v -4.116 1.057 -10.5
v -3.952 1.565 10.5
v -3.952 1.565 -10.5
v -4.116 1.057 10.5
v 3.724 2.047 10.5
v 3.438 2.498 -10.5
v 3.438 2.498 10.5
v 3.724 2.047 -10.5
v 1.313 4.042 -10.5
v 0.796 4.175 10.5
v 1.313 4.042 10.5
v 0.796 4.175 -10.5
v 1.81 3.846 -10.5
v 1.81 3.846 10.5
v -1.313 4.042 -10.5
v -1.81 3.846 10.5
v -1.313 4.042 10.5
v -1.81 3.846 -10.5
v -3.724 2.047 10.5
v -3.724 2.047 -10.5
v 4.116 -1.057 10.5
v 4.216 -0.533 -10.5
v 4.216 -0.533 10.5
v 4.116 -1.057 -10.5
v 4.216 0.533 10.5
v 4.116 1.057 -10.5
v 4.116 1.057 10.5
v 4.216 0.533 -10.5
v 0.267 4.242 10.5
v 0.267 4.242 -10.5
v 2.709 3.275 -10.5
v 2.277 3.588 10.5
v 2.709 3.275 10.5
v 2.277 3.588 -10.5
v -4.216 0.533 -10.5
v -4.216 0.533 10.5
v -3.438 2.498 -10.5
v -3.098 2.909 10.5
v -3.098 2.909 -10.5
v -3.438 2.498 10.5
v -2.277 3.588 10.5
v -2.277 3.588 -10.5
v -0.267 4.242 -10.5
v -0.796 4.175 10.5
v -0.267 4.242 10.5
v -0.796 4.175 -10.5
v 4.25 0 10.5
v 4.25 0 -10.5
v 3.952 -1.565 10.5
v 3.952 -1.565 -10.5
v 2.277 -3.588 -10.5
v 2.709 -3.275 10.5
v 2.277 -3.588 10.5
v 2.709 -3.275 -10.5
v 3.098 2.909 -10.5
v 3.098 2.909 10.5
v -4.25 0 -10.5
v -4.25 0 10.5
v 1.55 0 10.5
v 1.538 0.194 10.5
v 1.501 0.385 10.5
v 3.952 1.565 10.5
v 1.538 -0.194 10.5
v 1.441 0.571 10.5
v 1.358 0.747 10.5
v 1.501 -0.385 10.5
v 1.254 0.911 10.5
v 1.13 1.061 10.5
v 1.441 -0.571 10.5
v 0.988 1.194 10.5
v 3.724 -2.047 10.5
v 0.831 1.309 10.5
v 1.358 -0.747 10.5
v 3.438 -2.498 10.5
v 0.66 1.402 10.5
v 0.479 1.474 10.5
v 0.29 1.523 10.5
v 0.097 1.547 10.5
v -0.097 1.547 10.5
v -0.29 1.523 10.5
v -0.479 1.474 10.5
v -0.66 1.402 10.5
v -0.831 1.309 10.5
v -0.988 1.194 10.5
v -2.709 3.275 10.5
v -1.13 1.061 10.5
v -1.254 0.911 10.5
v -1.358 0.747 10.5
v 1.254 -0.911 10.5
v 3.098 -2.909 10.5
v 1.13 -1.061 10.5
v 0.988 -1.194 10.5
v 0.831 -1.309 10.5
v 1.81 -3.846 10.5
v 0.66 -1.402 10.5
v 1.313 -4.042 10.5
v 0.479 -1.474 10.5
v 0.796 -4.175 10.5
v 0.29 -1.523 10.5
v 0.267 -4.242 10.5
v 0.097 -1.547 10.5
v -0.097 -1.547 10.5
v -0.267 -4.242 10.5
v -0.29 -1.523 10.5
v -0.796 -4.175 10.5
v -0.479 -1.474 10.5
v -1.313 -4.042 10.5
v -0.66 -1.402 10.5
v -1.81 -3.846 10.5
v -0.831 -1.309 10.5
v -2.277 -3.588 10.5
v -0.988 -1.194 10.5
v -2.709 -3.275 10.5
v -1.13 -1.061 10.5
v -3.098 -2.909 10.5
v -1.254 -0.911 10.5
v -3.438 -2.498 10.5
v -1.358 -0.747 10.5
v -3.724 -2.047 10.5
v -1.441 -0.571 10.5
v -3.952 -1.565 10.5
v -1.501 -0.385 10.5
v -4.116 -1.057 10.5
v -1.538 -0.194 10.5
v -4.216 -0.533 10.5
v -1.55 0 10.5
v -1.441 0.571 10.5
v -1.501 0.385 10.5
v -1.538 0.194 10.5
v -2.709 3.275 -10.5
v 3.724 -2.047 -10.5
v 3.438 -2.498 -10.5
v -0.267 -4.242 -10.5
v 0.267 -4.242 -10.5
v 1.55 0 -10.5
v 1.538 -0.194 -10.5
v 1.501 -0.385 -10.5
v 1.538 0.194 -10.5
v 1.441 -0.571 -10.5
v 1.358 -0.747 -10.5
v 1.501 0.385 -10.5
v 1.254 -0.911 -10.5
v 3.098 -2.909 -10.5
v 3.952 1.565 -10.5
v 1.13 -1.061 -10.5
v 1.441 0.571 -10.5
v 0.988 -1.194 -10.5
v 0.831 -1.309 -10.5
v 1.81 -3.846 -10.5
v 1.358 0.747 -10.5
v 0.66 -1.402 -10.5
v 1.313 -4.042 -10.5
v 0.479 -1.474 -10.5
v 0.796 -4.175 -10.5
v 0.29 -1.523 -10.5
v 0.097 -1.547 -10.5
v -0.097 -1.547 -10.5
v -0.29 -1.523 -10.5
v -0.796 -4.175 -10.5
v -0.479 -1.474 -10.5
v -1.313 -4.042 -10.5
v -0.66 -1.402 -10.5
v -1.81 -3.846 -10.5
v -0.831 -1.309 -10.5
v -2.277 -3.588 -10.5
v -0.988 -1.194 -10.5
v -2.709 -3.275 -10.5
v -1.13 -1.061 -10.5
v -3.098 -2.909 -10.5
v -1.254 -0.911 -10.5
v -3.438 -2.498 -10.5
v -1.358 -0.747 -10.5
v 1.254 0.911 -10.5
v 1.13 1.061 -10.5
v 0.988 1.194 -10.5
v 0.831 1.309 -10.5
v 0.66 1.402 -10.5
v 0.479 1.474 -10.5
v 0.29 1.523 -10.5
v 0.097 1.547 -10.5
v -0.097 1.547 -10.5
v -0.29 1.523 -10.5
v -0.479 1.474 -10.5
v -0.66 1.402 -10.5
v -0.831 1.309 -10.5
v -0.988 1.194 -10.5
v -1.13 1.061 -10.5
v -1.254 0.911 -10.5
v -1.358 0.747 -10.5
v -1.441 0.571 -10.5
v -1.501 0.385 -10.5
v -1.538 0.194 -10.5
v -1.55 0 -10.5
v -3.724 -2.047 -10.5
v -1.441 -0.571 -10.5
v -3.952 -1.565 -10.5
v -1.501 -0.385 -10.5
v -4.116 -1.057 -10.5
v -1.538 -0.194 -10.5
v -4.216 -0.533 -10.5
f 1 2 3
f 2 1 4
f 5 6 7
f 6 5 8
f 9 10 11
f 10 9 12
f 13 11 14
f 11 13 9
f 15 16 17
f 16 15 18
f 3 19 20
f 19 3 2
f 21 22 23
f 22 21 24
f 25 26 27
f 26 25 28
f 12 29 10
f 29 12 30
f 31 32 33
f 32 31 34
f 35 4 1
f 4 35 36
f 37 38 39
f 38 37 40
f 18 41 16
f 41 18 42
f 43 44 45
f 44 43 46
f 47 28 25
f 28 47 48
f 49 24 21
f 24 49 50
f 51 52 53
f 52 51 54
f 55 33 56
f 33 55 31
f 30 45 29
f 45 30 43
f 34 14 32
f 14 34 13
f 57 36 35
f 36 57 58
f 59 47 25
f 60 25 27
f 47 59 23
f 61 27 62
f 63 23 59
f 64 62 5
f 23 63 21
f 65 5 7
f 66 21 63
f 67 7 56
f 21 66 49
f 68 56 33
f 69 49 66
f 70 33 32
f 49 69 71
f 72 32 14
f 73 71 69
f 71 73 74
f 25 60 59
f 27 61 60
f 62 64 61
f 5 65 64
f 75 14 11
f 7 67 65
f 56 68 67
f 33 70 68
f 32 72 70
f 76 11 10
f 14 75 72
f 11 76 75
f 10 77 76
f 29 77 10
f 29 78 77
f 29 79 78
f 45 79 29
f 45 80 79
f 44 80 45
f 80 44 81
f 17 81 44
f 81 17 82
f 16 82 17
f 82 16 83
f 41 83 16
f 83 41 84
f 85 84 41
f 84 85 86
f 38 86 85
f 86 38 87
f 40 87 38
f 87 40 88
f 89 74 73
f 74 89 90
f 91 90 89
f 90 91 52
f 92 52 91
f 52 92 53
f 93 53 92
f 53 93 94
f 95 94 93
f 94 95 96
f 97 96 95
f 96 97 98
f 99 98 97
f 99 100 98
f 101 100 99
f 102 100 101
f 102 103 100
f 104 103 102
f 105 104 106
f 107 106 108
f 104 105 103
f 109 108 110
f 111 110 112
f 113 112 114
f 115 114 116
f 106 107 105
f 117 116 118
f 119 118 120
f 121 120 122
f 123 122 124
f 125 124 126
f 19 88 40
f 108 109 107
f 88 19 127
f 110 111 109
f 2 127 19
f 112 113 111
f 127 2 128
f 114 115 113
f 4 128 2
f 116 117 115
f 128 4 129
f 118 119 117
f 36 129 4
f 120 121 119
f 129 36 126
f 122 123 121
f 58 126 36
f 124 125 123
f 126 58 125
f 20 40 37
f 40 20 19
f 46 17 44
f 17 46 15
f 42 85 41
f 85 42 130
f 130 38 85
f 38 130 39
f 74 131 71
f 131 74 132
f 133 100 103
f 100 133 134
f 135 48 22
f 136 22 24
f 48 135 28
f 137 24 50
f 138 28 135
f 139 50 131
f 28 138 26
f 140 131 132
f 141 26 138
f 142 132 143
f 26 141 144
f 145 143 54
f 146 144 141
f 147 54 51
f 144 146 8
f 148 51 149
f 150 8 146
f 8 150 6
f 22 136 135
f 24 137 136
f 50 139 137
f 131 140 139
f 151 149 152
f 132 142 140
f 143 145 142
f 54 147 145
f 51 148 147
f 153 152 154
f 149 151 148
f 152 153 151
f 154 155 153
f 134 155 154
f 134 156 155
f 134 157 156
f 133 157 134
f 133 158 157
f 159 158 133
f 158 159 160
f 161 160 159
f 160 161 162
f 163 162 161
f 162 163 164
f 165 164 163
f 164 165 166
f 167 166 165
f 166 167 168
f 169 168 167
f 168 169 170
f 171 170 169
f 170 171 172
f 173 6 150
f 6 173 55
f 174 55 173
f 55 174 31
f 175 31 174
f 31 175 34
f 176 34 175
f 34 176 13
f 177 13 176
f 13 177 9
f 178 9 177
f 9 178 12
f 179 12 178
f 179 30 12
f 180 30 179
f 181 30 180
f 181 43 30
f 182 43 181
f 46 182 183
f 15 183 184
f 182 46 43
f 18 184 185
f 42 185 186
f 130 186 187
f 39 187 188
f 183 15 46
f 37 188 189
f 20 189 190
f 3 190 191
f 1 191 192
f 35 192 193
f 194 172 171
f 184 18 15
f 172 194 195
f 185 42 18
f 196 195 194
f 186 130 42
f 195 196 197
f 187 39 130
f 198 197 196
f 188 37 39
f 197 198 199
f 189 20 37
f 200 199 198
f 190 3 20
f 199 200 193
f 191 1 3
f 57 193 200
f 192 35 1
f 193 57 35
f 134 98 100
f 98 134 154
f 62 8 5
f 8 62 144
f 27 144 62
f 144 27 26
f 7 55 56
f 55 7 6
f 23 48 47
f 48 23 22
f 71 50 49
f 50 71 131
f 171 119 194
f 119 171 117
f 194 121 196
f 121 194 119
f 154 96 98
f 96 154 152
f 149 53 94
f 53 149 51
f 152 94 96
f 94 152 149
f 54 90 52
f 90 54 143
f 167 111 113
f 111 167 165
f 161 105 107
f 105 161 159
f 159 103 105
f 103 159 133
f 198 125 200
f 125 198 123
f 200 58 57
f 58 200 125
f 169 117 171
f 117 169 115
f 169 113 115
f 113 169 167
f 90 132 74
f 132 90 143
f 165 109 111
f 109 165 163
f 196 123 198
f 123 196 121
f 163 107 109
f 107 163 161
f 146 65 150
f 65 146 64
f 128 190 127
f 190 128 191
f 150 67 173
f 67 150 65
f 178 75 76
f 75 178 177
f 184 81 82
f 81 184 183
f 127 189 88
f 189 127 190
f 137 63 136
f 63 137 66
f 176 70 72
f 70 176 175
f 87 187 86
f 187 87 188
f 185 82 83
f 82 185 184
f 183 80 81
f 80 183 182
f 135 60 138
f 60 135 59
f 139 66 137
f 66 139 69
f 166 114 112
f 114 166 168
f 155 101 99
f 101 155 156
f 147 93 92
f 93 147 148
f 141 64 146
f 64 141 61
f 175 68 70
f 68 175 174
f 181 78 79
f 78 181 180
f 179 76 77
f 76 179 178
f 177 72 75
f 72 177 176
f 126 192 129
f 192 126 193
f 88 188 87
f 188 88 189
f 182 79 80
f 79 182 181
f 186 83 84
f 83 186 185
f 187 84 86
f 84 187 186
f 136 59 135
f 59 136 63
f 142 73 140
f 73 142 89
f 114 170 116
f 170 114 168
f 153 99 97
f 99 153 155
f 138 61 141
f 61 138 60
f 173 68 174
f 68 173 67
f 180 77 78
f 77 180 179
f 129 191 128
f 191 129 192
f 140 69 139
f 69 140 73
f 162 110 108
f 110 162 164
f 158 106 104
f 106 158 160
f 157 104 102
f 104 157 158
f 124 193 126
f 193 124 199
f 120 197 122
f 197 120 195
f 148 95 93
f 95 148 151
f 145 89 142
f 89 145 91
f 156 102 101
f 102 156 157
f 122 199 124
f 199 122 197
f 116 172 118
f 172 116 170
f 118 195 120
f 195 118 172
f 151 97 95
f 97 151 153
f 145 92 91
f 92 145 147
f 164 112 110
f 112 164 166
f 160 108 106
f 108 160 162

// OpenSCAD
$fn = 50;


difference() {
	union() {
		translate(v = [0, 0, -10.5000000000]) {
			cylinder(h = 21, r = 4.2500000000);
		}
	}
	union() {
		translate(v = [0, 0, -100.0000000000]) {
			cylinder(h = 200, r = 1.5500000000);
		}
	}
}
